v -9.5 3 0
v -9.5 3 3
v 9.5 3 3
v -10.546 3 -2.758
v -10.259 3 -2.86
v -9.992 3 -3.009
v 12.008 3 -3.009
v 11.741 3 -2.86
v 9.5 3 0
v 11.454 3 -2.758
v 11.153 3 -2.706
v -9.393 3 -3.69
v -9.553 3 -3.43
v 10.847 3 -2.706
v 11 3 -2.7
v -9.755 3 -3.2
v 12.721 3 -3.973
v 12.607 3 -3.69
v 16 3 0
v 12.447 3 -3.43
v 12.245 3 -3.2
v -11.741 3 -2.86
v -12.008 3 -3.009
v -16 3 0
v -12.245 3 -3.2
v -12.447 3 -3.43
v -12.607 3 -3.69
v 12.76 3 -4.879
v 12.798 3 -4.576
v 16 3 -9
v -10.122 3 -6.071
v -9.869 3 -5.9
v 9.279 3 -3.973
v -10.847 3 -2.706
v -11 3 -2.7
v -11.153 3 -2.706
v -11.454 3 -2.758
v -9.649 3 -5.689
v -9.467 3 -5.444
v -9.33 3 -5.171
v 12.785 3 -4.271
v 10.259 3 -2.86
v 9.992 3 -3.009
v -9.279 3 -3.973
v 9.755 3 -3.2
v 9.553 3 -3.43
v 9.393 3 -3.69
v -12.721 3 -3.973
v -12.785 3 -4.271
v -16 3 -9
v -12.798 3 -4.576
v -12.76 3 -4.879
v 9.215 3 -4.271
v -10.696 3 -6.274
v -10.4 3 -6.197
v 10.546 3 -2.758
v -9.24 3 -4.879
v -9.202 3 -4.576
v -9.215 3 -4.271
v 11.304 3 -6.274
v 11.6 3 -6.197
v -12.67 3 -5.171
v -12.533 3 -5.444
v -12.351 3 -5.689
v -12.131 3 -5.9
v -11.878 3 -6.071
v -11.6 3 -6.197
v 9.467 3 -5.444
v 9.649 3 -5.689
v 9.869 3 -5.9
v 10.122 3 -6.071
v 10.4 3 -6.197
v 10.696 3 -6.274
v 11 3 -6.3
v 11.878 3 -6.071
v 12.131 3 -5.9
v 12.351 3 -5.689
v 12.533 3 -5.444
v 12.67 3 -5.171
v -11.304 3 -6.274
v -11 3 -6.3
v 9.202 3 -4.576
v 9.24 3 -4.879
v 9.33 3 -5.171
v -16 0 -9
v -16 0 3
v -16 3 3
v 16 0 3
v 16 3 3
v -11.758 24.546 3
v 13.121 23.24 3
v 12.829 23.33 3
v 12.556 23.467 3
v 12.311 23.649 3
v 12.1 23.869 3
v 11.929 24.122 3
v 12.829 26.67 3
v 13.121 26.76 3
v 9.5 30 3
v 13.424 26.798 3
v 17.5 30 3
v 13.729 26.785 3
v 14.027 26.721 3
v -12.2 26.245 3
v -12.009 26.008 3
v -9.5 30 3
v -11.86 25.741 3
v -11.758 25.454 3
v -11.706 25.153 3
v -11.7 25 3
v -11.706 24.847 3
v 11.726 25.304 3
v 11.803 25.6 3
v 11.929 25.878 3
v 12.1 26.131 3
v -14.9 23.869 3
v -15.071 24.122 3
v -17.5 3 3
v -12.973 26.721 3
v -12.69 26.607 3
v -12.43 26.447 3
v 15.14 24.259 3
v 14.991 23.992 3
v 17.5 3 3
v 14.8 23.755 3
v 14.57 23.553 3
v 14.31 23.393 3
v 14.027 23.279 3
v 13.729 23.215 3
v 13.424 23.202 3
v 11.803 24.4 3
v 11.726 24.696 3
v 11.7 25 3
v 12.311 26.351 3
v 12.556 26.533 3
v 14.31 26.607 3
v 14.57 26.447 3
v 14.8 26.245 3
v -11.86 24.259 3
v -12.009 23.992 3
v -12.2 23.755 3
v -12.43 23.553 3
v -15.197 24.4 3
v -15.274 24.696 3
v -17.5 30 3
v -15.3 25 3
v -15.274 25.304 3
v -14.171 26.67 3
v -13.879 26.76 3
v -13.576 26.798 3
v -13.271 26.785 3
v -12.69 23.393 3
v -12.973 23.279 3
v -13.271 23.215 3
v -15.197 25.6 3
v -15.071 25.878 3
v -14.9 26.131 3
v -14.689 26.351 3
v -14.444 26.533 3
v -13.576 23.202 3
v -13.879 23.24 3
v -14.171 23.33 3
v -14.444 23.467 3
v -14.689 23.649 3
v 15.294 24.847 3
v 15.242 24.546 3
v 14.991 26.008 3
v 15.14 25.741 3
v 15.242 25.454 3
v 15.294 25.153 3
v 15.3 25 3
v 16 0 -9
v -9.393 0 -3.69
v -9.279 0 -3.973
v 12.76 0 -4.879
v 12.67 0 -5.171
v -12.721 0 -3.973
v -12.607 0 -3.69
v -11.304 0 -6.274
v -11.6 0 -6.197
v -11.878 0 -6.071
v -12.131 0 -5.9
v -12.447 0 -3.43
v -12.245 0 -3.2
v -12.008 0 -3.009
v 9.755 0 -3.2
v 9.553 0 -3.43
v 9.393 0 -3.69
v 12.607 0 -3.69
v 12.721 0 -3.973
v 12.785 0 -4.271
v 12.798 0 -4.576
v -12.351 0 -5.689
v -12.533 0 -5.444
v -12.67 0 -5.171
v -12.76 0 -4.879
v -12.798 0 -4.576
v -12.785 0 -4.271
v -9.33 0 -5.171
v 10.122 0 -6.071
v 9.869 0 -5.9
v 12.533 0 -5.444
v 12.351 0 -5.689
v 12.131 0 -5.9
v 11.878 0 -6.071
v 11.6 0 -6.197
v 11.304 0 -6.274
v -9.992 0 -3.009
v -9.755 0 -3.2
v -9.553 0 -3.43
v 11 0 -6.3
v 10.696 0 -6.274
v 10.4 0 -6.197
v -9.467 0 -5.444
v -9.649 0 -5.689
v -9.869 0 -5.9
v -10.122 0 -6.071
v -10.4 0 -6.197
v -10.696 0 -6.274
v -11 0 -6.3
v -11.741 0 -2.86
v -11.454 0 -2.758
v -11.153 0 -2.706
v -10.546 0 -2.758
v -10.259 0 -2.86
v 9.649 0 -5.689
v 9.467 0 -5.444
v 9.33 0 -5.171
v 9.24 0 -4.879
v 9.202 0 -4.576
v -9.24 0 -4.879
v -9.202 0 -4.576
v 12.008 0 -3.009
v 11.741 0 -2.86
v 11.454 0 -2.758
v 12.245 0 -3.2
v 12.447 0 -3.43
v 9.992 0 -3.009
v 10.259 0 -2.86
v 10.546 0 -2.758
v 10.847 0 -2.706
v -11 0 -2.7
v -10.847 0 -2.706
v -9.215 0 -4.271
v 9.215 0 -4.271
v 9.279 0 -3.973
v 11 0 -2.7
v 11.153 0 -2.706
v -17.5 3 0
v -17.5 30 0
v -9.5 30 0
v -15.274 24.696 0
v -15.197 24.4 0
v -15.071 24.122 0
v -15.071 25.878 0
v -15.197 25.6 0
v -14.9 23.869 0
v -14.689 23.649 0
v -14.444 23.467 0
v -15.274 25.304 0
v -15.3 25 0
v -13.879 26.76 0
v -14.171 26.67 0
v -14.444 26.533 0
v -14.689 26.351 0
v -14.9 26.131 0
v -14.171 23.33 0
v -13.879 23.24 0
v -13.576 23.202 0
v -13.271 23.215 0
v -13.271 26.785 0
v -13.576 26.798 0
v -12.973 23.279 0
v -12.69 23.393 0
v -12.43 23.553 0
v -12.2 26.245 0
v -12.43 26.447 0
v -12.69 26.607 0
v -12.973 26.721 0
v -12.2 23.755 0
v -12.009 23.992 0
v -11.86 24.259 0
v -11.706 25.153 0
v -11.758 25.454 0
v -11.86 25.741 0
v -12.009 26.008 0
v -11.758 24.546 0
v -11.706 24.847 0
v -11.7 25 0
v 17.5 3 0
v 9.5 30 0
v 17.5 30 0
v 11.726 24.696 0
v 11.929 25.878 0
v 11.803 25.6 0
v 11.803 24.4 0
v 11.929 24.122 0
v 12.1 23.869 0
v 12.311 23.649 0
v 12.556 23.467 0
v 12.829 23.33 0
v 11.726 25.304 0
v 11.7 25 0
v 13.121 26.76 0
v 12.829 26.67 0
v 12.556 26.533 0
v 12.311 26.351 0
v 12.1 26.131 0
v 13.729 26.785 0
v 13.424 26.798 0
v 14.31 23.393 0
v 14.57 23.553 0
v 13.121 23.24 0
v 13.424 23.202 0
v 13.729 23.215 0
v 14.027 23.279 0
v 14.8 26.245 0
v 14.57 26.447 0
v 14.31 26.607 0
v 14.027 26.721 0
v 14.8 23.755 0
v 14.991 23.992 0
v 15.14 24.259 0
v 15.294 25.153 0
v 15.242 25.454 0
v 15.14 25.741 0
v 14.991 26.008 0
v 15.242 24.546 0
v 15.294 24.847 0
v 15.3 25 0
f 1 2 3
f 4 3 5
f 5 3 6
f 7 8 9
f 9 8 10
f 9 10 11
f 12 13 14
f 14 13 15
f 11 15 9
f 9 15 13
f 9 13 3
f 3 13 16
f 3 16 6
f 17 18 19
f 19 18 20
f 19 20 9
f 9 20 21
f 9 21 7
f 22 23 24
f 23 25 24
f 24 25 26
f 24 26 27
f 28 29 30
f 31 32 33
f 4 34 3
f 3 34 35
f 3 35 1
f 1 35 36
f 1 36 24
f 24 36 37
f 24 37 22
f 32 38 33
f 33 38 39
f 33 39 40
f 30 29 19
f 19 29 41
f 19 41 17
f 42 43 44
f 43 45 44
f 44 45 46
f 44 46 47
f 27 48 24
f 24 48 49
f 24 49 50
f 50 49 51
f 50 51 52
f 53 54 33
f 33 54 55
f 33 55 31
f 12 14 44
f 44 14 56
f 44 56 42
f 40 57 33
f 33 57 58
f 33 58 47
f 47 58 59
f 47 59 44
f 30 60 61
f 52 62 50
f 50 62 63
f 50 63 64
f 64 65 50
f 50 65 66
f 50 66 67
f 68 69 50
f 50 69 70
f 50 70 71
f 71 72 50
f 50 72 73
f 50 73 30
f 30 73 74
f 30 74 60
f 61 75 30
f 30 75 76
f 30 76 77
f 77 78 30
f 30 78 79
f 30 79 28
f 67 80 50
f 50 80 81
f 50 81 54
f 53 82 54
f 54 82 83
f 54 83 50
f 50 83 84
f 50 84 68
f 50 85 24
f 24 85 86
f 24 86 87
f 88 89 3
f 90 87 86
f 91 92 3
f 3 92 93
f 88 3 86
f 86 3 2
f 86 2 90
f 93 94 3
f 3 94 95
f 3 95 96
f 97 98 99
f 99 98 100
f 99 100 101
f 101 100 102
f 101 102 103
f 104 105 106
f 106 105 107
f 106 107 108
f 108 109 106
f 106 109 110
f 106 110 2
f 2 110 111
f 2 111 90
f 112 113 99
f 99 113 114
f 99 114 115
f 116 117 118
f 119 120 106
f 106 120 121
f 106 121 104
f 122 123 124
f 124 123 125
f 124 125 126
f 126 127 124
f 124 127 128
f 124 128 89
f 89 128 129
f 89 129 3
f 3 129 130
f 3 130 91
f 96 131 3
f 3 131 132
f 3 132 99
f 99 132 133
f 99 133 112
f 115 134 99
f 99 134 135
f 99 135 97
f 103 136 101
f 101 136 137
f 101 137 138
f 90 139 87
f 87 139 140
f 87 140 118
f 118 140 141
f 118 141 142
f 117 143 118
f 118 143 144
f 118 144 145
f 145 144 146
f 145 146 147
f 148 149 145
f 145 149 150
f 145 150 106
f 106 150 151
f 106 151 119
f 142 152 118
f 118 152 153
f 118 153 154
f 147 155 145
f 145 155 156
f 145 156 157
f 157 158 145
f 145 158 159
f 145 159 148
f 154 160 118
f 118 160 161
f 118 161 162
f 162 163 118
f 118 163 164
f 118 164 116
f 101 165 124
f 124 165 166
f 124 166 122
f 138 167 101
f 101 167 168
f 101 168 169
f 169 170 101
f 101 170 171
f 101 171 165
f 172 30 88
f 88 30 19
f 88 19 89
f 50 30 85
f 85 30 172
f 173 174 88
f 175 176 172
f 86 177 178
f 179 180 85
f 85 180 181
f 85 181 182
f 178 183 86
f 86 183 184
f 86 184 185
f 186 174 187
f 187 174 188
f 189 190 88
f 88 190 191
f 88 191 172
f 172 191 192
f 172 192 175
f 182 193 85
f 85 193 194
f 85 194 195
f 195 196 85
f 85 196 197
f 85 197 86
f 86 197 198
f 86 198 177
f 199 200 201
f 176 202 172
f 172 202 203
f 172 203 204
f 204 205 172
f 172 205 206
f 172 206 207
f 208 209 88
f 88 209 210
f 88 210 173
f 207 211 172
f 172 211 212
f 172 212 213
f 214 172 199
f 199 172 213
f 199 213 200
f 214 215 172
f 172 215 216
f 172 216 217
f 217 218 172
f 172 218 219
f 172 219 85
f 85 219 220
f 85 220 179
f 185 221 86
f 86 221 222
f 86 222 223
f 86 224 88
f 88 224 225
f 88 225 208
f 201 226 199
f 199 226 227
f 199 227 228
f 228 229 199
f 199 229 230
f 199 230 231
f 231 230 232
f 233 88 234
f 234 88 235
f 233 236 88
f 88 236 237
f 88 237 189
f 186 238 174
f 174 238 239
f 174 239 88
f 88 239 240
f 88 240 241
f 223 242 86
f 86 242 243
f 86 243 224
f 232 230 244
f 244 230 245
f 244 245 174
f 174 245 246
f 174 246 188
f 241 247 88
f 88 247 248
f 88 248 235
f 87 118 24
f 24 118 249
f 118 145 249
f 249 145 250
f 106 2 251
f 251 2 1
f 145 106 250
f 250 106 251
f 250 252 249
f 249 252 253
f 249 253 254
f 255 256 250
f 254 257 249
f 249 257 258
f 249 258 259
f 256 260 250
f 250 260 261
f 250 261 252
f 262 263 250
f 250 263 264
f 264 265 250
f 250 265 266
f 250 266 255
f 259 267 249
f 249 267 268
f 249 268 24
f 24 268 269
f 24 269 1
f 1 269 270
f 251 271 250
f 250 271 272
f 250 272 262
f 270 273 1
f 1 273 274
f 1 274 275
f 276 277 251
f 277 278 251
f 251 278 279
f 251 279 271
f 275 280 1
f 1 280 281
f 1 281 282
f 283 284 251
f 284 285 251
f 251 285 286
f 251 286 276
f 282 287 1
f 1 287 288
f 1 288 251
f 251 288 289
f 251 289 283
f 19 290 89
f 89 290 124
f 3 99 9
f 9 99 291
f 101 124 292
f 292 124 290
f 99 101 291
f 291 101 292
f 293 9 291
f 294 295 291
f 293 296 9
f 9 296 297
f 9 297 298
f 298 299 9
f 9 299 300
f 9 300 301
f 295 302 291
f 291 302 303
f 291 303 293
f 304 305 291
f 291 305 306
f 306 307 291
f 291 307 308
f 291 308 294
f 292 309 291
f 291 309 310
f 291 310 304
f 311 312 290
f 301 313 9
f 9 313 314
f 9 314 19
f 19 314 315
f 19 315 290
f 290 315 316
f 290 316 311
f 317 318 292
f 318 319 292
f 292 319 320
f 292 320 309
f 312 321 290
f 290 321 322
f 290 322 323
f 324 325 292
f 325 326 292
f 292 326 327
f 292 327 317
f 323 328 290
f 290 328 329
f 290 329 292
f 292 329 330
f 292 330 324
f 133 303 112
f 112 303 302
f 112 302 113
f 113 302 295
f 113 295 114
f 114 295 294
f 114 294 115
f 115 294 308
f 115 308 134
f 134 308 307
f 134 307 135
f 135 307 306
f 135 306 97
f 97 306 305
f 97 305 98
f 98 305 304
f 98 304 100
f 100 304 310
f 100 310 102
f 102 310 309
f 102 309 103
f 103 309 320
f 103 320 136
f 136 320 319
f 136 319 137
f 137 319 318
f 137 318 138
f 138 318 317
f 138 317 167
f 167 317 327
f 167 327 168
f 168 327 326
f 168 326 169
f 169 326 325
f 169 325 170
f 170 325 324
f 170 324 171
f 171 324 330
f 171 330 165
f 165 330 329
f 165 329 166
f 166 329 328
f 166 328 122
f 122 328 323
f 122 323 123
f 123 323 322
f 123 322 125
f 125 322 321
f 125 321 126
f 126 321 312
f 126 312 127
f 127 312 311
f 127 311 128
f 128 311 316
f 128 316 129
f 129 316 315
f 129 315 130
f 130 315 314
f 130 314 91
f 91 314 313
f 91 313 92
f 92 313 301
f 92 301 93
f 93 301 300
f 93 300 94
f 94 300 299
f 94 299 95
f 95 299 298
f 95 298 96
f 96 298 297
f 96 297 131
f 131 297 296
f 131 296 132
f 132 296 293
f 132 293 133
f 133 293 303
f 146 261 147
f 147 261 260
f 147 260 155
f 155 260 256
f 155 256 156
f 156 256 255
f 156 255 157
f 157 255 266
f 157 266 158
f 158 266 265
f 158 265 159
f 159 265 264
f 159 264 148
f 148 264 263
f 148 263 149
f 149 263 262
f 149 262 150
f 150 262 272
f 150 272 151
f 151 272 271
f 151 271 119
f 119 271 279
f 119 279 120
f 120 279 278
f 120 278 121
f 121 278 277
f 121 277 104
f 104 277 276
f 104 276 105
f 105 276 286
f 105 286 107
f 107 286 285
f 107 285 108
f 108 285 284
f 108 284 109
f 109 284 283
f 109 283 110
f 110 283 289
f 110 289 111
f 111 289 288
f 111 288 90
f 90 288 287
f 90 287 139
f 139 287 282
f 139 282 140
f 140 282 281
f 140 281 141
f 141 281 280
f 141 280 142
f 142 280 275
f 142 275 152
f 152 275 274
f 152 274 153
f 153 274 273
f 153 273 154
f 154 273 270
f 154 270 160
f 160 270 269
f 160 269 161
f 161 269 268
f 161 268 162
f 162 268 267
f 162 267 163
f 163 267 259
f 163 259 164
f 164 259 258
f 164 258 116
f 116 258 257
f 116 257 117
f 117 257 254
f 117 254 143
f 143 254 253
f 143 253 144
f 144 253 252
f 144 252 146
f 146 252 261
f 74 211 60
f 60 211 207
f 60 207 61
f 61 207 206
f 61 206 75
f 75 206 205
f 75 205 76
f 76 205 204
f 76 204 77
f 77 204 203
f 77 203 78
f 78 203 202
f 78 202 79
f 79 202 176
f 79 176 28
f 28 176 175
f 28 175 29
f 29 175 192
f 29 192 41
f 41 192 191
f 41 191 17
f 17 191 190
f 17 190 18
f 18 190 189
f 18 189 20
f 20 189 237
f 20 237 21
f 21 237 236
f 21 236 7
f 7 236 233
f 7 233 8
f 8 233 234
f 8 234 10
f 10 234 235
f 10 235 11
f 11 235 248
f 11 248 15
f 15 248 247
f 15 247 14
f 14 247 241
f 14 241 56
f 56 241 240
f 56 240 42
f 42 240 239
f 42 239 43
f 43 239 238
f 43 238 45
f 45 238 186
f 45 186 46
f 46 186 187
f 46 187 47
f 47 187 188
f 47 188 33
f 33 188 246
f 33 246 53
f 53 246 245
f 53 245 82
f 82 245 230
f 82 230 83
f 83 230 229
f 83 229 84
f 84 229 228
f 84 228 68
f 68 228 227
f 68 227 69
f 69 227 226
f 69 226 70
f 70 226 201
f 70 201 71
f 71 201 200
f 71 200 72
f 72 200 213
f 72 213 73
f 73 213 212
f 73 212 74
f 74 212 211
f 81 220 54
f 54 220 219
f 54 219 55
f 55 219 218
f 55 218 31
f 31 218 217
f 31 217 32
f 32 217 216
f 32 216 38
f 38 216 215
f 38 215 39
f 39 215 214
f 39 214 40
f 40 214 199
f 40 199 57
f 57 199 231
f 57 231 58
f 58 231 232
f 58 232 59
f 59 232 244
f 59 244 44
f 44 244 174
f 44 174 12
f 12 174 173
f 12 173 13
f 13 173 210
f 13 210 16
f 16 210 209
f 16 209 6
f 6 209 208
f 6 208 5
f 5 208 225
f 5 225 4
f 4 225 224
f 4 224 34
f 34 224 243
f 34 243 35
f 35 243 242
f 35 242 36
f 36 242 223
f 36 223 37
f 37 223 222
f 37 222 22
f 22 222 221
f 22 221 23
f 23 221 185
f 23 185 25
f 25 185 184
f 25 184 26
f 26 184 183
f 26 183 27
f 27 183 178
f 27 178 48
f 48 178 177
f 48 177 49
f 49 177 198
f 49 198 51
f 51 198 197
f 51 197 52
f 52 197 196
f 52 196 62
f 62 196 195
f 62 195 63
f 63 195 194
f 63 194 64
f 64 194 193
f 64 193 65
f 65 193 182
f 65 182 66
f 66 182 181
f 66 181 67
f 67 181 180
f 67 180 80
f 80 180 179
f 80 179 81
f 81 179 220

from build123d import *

# Parameters (mm, degrees)
SKETCH_1_W               = 32
SKETCH_1_H               = 12
F_32X12_3_3MM_DEPTH      = 3
SKETCH_2_W               = 8
SKETCH_2_H               = 27
EXTRUDE_3_DEPTH          = 3
SKETCH_3_R               = 1.8
CUT_EXTRUDE_3_6_27_DEPTH = 3
SKETCH_4_R               = 1.8
CUT_EXTRUDE_832_DEPTH    = 3


with BuildPart() as part:
    # 草图1 → 测距小底脚32x12_厚3_单向3mm (new body)
    with BuildSketch(Plane(origin=(0, 0, 0), x_dir=(1, 0, 0), z_dir=(0, 1, 0))):
        with Locations((0, 3)):
            Rectangle(SKETCH_1_W, SKETCH_1_H)
    extrude(amount=F_32X12_3_3MM_DEPTH)

    # 草图2 → 两根支撑臂厚3_去掉大框和加强筋 (add)
    with BuildSketch(Plane.XY):
        with Locations((-13.5, 16.5)):
            Rectangle(SKETCH_2_W, SKETCH_2_H)
        with Locations((13.5, 16.5)):
            Rectangle(SKETCH_2_W, SKETCH_2_H)
    extrude(amount=EXTRUDE_3_DEPTH)

    # 草图3 → 背板原孔3.6_只接下排两孔距27_贯穿 (cut)
    with BuildSketch(Plane.XY):
        with Locations((-13.5, 25)):
            Circle(SKETCH_3_R)
        with Locations((13.5, 25)):
            Circle(SKETCH_3_R)
    extrude(amount=CUT_EXTRUDE_3_6_27_DEPTH, mode=Mode.SUBTRACT)

    # 草图4 → Cut-Extrude 832 (cut)
    with BuildSketch(Plane(origin=(0, 0, 0), x_dir=(1, 0, 0), z_dir=(0, 1, 0))):
        with Locations(Location((-11, 4.5, 0), (0, 0, 270))):
            Circle(SKETCH_4_R)
        with Locations(Location((11, 4.5, 0), (0, 0, 270))):
            Circle(SKETCH_4_R)
    extrude(amount=CUT_EXTRUDE_832_DEPTH, mode=Mode.SUBTRACT)


solid = part.part
